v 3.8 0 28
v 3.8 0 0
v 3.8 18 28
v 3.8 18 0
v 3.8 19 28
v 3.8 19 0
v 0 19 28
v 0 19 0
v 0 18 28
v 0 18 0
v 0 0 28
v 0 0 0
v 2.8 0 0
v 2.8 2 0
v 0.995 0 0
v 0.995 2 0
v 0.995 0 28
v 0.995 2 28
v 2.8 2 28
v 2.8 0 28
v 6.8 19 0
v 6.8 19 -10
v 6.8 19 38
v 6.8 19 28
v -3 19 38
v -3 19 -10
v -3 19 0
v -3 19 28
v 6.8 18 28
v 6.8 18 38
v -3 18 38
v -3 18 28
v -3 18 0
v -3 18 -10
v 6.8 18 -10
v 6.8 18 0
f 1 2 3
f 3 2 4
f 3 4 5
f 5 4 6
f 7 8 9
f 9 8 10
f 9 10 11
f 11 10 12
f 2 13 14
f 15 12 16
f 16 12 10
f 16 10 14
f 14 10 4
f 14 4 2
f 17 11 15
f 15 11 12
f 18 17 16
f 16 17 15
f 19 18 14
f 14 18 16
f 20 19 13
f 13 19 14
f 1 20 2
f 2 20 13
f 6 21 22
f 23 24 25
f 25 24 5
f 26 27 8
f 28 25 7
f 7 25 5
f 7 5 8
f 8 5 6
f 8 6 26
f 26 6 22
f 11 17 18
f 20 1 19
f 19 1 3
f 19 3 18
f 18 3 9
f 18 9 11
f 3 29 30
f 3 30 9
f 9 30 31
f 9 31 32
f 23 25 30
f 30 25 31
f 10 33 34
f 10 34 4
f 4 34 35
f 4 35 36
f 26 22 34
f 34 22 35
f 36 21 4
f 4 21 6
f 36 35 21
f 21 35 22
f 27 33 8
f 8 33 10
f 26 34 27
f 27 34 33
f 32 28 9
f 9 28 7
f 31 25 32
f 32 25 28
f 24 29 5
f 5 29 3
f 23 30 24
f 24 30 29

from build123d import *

# Parameters (mm, degrees)
BOSS_EXTRUDE2_DEPTH = 28
SKETCH3_W           = 3.8
SKETCH3_H           = 1
BOSS_EXTRUDE3_DEPTH = 10
SKETCH4_W           = 3.8
SKETCH4_H           = 1
BOSS_EXTRUDE4_DEPTH = 10
SKETCH5_W           = 10
SKETCH5_H           = 1
BOSS_EXTRUDE5_DEPTH = 3
SKETCH6_W           = 10
SKETCH6_H           = 1
BOSS_EXTRUDE6_DEPTH = 3
SKETCH7_W           = 10
SKETCH7_H           = 1
BOSS_EXTRUDE7_DEPTH = 3
SKETCH8_W           = 10
SKETCH8_H           = 1
BOSS_EXTRUDE8_DEPTH = 3


with BuildPart() as part:
    # Sketch1 → Boss-Extrude2 (new body)
    with BuildSketch(Plane.XY):
        Polygon((2.8, 0), (3.8, 0), (3.8, 19), (0, 19), (0, 0), (0.995254582, 0), (0.995254582, 2), (2.8, 2), align=None)
    extrude(amount=BOSS_EXTRUDE2_DEPTH)

    # Sketch3 → Boss-Extrude3 (add)
    with BuildSketch(Plane.XY.offset(28)):
        with Locations((1.9, 18.5)):
            Rectangle(SKETCH3_W, SKETCH3_H)
    extrude(amount=BOSS_EXTRUDE3_DEPTH)

    # Sketch4 → Boss-Extrude4 (add)
    with BuildSketch(Plane(origin=(0, 0, 0), x_dir=(-1, 0, 0), z_dir=(0, 0, -1))):
        with Locations((-1.9, 18.5)):
            Rectangle(SKETCH4_W, SKETCH4_H)
    extrude(amount=BOSS_EXTRUDE4_DEPTH)

    # Sketch5 → Boss-Extrude5 (add)
    with BuildSketch(Plane(origin=(3.8, 0, 0), x_dir=(0, 0, -1), z_dir=(1, 0, 0))):
        with Locations((5, 18.5)):
            Rectangle(SKETCH5_W, SKETCH5_H)
    extrude(amount=BOSS_EXTRUDE5_DEPTH)

    # Sketch6 → Boss-Extrude6 (add)
    with BuildSketch(Plane.ZY):
        with Locations((-5, 18.5)):
            Rectangle(SKETCH6_W, SKETCH6_H)
    extrude(amount=BOSS_EXTRUDE6_DEPTH)

    # Sketch7 → Boss-Extrude7 (add)
    with BuildSketch(Plane.ZY):
        with Locations((33, 18.5)):
            Rectangle(SKETCH7_W, SKETCH7_H)
    extrude(amount=BOSS_EXTRUDE7_DEPTH)

    # Sketch8 → Boss-Extrude8 (add)
    with BuildSketch(Plane(origin=(3.8, 0, 0), x_dir=(0, 0, -1), z_dir=(1, 0, 0))):
        with Locations((-33, 18.5)):
            Rectangle(SKETCH8_W, SKETCH8_H)
    extrude(amount=BOSS_EXTRUDE8_DEPTH)


solid = part.part
